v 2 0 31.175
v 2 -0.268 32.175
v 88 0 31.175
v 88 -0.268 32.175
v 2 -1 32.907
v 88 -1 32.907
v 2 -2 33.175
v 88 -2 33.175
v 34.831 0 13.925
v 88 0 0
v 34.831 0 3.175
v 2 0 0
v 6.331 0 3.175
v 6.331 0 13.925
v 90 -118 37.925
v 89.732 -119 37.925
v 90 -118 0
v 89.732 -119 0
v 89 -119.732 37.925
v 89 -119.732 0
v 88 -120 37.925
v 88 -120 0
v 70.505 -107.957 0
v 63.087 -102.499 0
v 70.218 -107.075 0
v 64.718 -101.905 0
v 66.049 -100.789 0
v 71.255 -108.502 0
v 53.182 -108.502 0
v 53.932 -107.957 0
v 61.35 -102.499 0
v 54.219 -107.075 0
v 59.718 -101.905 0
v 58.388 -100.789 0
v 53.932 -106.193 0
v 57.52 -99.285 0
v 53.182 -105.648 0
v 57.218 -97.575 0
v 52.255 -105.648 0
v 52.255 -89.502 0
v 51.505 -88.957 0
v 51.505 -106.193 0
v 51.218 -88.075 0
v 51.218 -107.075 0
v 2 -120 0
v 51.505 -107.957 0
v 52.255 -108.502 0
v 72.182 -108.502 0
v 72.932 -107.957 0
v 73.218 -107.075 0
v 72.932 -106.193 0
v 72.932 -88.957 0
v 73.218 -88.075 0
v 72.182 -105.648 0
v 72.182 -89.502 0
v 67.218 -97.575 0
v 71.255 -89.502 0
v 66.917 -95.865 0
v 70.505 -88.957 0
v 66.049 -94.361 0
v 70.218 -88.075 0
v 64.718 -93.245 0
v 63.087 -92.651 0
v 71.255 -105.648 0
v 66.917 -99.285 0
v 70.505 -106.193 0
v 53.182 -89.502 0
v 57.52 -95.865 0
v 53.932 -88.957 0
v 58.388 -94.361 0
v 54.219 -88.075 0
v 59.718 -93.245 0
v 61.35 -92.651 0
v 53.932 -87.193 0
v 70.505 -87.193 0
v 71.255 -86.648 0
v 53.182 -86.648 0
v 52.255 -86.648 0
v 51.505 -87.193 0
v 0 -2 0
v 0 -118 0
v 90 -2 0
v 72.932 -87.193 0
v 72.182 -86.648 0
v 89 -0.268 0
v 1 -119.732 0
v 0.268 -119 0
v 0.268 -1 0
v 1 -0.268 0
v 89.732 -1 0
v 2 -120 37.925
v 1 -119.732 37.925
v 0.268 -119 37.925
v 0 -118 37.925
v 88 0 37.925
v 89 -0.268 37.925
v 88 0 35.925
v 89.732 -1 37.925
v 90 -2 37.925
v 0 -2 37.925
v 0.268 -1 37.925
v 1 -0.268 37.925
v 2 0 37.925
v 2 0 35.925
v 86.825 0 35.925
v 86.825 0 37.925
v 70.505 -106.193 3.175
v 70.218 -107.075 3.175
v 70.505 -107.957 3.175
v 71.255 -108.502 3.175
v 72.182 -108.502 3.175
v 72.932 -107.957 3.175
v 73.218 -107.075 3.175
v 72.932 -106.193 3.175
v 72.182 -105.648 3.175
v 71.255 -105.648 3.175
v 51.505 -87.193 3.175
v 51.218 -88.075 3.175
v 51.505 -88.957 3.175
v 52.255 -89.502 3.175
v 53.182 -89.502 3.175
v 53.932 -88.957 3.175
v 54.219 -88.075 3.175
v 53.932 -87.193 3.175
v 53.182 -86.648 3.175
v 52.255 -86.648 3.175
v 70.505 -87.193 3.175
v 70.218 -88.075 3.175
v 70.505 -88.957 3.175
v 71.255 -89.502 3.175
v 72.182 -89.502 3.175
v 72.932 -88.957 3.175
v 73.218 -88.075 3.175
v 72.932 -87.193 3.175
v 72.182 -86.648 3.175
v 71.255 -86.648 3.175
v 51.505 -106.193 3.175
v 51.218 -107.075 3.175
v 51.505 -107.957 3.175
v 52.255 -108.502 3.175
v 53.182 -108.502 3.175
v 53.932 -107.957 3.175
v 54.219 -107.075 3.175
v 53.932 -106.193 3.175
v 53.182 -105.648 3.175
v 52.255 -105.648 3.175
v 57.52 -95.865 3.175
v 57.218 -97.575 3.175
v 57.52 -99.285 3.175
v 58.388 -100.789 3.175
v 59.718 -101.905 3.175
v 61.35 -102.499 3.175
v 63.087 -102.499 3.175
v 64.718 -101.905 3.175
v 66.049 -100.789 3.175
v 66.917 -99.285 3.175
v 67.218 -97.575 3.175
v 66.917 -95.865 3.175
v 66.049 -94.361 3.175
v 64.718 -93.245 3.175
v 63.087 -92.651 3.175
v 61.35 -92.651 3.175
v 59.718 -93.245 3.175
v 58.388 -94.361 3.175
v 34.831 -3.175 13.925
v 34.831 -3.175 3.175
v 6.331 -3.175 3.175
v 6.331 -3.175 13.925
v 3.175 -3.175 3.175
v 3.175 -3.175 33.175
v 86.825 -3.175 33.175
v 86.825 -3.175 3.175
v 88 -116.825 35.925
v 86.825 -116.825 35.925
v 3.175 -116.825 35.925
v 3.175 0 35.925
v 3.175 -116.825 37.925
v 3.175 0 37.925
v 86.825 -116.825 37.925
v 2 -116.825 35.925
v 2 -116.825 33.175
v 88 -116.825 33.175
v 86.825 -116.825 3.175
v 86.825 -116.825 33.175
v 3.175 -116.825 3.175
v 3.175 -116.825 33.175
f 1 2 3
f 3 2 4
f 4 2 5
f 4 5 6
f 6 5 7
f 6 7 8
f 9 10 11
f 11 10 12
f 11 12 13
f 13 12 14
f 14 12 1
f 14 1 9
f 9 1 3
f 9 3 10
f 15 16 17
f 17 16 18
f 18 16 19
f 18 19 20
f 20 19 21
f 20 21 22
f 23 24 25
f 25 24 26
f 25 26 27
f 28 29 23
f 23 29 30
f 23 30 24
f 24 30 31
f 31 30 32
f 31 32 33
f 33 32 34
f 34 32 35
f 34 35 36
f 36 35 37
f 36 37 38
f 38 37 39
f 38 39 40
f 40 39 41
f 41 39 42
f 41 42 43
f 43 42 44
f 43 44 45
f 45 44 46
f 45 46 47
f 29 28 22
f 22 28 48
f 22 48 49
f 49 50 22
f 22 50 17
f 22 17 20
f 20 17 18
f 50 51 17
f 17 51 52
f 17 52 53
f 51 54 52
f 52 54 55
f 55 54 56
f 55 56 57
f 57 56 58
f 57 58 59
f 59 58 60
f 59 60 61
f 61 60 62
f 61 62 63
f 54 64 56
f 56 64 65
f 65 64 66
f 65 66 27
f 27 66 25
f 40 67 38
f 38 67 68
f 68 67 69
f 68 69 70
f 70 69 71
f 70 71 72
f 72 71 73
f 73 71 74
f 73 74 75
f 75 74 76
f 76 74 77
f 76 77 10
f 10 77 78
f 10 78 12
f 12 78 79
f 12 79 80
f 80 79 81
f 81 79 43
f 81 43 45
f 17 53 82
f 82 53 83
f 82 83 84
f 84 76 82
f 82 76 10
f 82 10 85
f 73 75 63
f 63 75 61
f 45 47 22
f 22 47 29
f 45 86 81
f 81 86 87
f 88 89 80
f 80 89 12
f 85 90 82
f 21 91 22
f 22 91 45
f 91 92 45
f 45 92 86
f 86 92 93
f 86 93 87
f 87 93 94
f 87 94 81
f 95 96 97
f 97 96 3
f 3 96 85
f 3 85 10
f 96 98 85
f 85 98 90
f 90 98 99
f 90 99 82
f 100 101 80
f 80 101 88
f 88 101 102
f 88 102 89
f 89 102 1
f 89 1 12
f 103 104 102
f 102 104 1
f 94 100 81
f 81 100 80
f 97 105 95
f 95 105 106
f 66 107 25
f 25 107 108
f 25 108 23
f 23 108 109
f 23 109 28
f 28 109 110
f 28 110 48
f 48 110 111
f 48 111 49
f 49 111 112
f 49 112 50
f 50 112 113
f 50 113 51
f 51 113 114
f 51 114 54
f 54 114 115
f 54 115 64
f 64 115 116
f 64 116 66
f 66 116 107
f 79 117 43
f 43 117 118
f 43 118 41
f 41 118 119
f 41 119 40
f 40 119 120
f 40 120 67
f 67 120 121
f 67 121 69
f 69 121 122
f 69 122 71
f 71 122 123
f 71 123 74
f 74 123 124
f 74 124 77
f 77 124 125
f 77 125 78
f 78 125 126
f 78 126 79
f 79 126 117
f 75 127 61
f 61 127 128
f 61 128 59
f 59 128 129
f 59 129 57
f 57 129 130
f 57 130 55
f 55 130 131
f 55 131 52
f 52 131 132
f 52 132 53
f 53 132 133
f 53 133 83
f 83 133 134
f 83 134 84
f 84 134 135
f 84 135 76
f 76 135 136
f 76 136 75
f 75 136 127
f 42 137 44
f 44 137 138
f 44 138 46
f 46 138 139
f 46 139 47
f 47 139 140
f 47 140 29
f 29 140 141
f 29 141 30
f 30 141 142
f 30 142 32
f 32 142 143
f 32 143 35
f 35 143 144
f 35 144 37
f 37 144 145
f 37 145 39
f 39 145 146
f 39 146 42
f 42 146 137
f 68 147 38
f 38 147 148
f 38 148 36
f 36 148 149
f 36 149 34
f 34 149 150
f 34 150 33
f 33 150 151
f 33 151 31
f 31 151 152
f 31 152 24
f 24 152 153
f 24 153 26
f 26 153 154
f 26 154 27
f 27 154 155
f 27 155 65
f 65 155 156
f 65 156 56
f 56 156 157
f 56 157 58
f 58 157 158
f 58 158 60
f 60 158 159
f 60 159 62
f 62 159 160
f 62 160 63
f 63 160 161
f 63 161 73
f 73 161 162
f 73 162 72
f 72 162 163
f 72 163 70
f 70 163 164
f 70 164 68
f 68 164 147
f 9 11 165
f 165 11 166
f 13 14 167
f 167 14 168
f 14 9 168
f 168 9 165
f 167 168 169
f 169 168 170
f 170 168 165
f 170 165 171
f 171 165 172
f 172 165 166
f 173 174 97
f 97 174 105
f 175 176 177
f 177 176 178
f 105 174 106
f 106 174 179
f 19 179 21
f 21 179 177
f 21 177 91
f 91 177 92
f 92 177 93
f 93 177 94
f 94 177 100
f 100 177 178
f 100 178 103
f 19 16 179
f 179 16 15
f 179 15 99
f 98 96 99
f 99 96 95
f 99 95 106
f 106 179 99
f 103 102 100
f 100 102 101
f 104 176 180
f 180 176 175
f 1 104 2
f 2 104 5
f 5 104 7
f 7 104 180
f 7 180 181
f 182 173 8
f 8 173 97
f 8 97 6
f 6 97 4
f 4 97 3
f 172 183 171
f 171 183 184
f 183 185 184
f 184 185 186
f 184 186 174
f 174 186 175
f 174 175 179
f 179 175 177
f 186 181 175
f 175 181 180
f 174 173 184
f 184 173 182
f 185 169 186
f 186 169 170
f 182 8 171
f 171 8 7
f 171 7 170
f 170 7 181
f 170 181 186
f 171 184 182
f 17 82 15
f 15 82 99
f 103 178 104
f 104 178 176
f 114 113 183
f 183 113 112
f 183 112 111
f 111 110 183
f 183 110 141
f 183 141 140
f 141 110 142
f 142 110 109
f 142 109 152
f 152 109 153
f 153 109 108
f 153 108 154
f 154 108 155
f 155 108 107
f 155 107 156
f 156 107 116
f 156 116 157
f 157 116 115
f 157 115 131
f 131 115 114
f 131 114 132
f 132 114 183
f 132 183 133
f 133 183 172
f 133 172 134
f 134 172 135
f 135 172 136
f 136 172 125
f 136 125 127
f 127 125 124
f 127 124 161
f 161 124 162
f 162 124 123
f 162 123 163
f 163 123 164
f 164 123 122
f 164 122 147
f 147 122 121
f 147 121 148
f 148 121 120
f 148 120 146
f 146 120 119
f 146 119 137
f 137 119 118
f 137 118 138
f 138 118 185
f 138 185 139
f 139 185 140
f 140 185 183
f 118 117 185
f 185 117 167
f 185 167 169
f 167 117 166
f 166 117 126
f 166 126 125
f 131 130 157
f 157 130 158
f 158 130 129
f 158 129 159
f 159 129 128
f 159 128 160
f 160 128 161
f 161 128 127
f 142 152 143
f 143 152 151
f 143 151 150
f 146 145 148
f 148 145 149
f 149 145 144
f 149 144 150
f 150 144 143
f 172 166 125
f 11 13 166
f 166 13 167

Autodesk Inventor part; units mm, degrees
ref_plane "YZ Plane" through (0, 0, 0) normal (1, 0, 0) x (0, 1, 0)
ref_plane "XZ Plane" through (0, 0, 0) normal (0, 1, 0) x (-1, 0, 0)
ref_plane "XY Plane" through (0, 0, 0) normal (0, 0, 1) x (1, 0, 0)
sketch "Sketch1" plane through (0, 0, 0) normal (0, 0, 1) x (1, 0, 0)
  line L0 (0, 0) -> (90, 0)
  line L1 (90, 0) -> (90, -120)
  line L2 (90, -120) -> (0, -120)
  line L3 (0, -120) -> (0, 0)
  dimension "d0" = 90
  dimension "d1" = 120
extrude "Extrusion1" add sketch "Sketch1" along normal blind 3.175
sketch "Sketch2" plane through (0, 0, 3.175) normal (0, 0, 1) x (1, 0, 0)
  point P0 (0, 0)
sketch "Sketch3" plane through (0, 0, 3.175) normal (0, 0, 1) x (1, 0, 0)
  line L0 (0, -120) -> (90, -120) projected
  line L1 (0, 0) -> (90, 0)
  line L2 (90, 0) -> (90, -120)
  line L3 (90, -120) -> (0, -120)
  line L4 (0, -120) -> (0, 0)
  line L5 (90, 0) -> (0, 0) projected
  line L6 (0, 0) -> (3.175, 0)
  line L7 (90, -120) -> (90, -116.825)
  line L8 (90, -120) -> (90, 0) projected
  line L9 (3.175, -3.175) -> (86.825, -3.175)
  line L10 (86.825, -3.175) -> (86.825, -116.825)
  line L11 (86.825, -116.825) -> (3.175, -116.825)
  line L12 (3.175, -116.825) -> (3.175, -3.175)
  dimension "d4" = 3.175
  dimension "d5" = 3.175
  dimension "d7" = 3.175
extrude "Extrusion2" add sketch "Sketch3" along normal blind 30
sketch "Sketch4" plane through (0, 0, 33.175) normal (0, 0, 1) x (1, 0, 0)
  line L0 (0, 0) -> (90, 0) projected
  line L1 (0, -120) -> (0, 0) projected
  line L2 (0, 0) -> (0, -120)
  line L3 (90, -120) -> (0, -120) projected
  line L4 (0, -120) -> (90, -120)
  line L5 (90, -120) -> (90, 0)
  line L6 (90, 0) -> (88, 0)
  line L7 (88, 0) -> (88, -116.825)
  line L8 (3.175, -116.825) -> (86.825, -116.825) projected
  line L9 (88, -116.825) -> (3.175, -116.825)
  line L10 (3.175, -116.825) -> (2, -116.825)
  line L11 (2, -116.825) -> (2, 0)
  line L12 (2, 0) -> (0, 0)
  dimension "d10" = 2
  dimension "d11" = 1.175
extrude "Extrusion3" add sketch "Sketch4" along normal blind 2.75 contours L0 L11 L10 L8 L9 L7 L5 L3 L1
sketch "Sketch5" plane through (0, 0, 35.925) normal (0, 0, 1) x (1, 0, 0)
  line L0 (0, 0) -> (90, 0) projected
  line L1 (0, 0) -> (3.175, 0)
  line L2 (86.825, -3.175) -> (3.175, -3.175) projected
  line L3 (3.175, -116.825) -> (86.825, -116.825) projected
  line L4 (3.175, 0) -> (3.175, -116.825)
  line L5 (3.175, -116.825) -> (86.825, -116.825)
  line L6 (86.825, -116.825) -> (86.825, 0)
  line L7 (90, 0) -> (90, -120) projected
  line L8 (86.825, 0) -> (90, 0)
  line L9 (90, 0) -> (90, -120)
  line L10 (90, -120) -> (0, -120) projected
  line L11 (90, -120) -> (0, -120)
  line L12 (0, -120) -> (0, 0) projected
  line L13 (0, -120) -> (0, 0)
  line L14 (0, 0) -> (3.175, 0)
extrude "Extrusion4" add sketch "Sketch5" along normal blind 2 contours L0 L4 L3 L6 L7 L10 L12
sketch "Sketch6" plane through (0, 0, 0) normal (0, 1, 0) x (1, 0, 0)
  line L0 (3.175, -3.175) -> (86.825, -3.175) projected
  line L1 (3.175, -3.175) -> (3.175, -33.175) projected
  line L2 (86.825, -3.175) -> (3.175, -3.175)
  line L3 (3.175, -3.175) -> (45, -3.175)
  line L4 (45, -13.925) -> (6.3314, -13.925)
  line L5 (6.3314, -13.925) -> (34.8314, -13.925)
  line L6 (34.8314, -13.925) -> (34.8314, -3.175)
  line L7 (34.8314, -3.175) -> (6.3314, -3.175)
  line L8 (6.3314, -3.175) -> (6.3314, -13.925)
  point P0 (0, 0)
  dimension "d16" = 10.75
  dimension "d18" = 28.5
  dimension "d46" = 3.1564
extrude "Extrusion5" cut sketch "Sketch6" against normal blind 3.175
sketch "Sketch7" plane through (0, 0, 3.175) normal (0, 0, 1) x (1, 0, 0)
  line L0 (0, -120) -> (90, -120) projected
  line L1 (90, -120) -> (34.437, -120)
  line L2 (34.437, -120) -> (34.437, -75.55)
  line L3 (34.437, -75.55) -> (90, -75.55)
  line L4 (90, -75.55) -> (90, -120)
  line L5 (90, -120) -> (34.437, -120)
  line L6 (62.2185, -120) -> (62.2185, -97.575)
  dimension "d22" = 55.563
  dimension "d23" = 44.45
  dimension "d24" = 22.425
hole "Hole1" at (62.2185, -97.575, 3.175) direction (0, 0, -1) diameter 10 end through all
sketch "Sketch8" plane through (0, 0, 3.175) normal (0, 0, 1) x (1, 0, 0)
  circle A0 centre (62.2185, -97.575) radius 5 projected
  line L0 (62.2185, -97.575) -> (71.7185, -97.575)
  line L1 (71.7185, -97.575) -> (71.7185, -88.075)
  line L2 (71.7185, -88.075) -> (52.7185, -88.075)
  line L3 (52.7185, -88.075) -> (52.7185, -107.075)
  line L4 (52.7185, -107.075) -> (71.7185, -107.075)
  line L5 (71.7185, -107.075) -> (71.7185, -88.075)
  point P0 (0, 0)
  dimension "d32" = 9.5
  dimension "d33" = 9.5
  dimension "d34" = 19
  dimension "d35" = 19
hole "Hole2" at (52.7185, -88.075, 3.175) at (71.7185, -88.075, 3.175) at (71.7185, -107.075, 3.175) at (52.7185, -107.075, 3.175) direction (0, 0, -1) diameter 3 end through all
fillet "Fillet1" radius 2 2 edges at (0, 0, 18.9625) (90, 0, 18.9625)
fillet "Fillet2" radius 2 2 edges at (0, -120, 18.9625) (90, -120, 18.9625)
fillet "Fillet3" radius 2 1 edges at (45, 0, 33.175)
properties part number "BatteryBox"
